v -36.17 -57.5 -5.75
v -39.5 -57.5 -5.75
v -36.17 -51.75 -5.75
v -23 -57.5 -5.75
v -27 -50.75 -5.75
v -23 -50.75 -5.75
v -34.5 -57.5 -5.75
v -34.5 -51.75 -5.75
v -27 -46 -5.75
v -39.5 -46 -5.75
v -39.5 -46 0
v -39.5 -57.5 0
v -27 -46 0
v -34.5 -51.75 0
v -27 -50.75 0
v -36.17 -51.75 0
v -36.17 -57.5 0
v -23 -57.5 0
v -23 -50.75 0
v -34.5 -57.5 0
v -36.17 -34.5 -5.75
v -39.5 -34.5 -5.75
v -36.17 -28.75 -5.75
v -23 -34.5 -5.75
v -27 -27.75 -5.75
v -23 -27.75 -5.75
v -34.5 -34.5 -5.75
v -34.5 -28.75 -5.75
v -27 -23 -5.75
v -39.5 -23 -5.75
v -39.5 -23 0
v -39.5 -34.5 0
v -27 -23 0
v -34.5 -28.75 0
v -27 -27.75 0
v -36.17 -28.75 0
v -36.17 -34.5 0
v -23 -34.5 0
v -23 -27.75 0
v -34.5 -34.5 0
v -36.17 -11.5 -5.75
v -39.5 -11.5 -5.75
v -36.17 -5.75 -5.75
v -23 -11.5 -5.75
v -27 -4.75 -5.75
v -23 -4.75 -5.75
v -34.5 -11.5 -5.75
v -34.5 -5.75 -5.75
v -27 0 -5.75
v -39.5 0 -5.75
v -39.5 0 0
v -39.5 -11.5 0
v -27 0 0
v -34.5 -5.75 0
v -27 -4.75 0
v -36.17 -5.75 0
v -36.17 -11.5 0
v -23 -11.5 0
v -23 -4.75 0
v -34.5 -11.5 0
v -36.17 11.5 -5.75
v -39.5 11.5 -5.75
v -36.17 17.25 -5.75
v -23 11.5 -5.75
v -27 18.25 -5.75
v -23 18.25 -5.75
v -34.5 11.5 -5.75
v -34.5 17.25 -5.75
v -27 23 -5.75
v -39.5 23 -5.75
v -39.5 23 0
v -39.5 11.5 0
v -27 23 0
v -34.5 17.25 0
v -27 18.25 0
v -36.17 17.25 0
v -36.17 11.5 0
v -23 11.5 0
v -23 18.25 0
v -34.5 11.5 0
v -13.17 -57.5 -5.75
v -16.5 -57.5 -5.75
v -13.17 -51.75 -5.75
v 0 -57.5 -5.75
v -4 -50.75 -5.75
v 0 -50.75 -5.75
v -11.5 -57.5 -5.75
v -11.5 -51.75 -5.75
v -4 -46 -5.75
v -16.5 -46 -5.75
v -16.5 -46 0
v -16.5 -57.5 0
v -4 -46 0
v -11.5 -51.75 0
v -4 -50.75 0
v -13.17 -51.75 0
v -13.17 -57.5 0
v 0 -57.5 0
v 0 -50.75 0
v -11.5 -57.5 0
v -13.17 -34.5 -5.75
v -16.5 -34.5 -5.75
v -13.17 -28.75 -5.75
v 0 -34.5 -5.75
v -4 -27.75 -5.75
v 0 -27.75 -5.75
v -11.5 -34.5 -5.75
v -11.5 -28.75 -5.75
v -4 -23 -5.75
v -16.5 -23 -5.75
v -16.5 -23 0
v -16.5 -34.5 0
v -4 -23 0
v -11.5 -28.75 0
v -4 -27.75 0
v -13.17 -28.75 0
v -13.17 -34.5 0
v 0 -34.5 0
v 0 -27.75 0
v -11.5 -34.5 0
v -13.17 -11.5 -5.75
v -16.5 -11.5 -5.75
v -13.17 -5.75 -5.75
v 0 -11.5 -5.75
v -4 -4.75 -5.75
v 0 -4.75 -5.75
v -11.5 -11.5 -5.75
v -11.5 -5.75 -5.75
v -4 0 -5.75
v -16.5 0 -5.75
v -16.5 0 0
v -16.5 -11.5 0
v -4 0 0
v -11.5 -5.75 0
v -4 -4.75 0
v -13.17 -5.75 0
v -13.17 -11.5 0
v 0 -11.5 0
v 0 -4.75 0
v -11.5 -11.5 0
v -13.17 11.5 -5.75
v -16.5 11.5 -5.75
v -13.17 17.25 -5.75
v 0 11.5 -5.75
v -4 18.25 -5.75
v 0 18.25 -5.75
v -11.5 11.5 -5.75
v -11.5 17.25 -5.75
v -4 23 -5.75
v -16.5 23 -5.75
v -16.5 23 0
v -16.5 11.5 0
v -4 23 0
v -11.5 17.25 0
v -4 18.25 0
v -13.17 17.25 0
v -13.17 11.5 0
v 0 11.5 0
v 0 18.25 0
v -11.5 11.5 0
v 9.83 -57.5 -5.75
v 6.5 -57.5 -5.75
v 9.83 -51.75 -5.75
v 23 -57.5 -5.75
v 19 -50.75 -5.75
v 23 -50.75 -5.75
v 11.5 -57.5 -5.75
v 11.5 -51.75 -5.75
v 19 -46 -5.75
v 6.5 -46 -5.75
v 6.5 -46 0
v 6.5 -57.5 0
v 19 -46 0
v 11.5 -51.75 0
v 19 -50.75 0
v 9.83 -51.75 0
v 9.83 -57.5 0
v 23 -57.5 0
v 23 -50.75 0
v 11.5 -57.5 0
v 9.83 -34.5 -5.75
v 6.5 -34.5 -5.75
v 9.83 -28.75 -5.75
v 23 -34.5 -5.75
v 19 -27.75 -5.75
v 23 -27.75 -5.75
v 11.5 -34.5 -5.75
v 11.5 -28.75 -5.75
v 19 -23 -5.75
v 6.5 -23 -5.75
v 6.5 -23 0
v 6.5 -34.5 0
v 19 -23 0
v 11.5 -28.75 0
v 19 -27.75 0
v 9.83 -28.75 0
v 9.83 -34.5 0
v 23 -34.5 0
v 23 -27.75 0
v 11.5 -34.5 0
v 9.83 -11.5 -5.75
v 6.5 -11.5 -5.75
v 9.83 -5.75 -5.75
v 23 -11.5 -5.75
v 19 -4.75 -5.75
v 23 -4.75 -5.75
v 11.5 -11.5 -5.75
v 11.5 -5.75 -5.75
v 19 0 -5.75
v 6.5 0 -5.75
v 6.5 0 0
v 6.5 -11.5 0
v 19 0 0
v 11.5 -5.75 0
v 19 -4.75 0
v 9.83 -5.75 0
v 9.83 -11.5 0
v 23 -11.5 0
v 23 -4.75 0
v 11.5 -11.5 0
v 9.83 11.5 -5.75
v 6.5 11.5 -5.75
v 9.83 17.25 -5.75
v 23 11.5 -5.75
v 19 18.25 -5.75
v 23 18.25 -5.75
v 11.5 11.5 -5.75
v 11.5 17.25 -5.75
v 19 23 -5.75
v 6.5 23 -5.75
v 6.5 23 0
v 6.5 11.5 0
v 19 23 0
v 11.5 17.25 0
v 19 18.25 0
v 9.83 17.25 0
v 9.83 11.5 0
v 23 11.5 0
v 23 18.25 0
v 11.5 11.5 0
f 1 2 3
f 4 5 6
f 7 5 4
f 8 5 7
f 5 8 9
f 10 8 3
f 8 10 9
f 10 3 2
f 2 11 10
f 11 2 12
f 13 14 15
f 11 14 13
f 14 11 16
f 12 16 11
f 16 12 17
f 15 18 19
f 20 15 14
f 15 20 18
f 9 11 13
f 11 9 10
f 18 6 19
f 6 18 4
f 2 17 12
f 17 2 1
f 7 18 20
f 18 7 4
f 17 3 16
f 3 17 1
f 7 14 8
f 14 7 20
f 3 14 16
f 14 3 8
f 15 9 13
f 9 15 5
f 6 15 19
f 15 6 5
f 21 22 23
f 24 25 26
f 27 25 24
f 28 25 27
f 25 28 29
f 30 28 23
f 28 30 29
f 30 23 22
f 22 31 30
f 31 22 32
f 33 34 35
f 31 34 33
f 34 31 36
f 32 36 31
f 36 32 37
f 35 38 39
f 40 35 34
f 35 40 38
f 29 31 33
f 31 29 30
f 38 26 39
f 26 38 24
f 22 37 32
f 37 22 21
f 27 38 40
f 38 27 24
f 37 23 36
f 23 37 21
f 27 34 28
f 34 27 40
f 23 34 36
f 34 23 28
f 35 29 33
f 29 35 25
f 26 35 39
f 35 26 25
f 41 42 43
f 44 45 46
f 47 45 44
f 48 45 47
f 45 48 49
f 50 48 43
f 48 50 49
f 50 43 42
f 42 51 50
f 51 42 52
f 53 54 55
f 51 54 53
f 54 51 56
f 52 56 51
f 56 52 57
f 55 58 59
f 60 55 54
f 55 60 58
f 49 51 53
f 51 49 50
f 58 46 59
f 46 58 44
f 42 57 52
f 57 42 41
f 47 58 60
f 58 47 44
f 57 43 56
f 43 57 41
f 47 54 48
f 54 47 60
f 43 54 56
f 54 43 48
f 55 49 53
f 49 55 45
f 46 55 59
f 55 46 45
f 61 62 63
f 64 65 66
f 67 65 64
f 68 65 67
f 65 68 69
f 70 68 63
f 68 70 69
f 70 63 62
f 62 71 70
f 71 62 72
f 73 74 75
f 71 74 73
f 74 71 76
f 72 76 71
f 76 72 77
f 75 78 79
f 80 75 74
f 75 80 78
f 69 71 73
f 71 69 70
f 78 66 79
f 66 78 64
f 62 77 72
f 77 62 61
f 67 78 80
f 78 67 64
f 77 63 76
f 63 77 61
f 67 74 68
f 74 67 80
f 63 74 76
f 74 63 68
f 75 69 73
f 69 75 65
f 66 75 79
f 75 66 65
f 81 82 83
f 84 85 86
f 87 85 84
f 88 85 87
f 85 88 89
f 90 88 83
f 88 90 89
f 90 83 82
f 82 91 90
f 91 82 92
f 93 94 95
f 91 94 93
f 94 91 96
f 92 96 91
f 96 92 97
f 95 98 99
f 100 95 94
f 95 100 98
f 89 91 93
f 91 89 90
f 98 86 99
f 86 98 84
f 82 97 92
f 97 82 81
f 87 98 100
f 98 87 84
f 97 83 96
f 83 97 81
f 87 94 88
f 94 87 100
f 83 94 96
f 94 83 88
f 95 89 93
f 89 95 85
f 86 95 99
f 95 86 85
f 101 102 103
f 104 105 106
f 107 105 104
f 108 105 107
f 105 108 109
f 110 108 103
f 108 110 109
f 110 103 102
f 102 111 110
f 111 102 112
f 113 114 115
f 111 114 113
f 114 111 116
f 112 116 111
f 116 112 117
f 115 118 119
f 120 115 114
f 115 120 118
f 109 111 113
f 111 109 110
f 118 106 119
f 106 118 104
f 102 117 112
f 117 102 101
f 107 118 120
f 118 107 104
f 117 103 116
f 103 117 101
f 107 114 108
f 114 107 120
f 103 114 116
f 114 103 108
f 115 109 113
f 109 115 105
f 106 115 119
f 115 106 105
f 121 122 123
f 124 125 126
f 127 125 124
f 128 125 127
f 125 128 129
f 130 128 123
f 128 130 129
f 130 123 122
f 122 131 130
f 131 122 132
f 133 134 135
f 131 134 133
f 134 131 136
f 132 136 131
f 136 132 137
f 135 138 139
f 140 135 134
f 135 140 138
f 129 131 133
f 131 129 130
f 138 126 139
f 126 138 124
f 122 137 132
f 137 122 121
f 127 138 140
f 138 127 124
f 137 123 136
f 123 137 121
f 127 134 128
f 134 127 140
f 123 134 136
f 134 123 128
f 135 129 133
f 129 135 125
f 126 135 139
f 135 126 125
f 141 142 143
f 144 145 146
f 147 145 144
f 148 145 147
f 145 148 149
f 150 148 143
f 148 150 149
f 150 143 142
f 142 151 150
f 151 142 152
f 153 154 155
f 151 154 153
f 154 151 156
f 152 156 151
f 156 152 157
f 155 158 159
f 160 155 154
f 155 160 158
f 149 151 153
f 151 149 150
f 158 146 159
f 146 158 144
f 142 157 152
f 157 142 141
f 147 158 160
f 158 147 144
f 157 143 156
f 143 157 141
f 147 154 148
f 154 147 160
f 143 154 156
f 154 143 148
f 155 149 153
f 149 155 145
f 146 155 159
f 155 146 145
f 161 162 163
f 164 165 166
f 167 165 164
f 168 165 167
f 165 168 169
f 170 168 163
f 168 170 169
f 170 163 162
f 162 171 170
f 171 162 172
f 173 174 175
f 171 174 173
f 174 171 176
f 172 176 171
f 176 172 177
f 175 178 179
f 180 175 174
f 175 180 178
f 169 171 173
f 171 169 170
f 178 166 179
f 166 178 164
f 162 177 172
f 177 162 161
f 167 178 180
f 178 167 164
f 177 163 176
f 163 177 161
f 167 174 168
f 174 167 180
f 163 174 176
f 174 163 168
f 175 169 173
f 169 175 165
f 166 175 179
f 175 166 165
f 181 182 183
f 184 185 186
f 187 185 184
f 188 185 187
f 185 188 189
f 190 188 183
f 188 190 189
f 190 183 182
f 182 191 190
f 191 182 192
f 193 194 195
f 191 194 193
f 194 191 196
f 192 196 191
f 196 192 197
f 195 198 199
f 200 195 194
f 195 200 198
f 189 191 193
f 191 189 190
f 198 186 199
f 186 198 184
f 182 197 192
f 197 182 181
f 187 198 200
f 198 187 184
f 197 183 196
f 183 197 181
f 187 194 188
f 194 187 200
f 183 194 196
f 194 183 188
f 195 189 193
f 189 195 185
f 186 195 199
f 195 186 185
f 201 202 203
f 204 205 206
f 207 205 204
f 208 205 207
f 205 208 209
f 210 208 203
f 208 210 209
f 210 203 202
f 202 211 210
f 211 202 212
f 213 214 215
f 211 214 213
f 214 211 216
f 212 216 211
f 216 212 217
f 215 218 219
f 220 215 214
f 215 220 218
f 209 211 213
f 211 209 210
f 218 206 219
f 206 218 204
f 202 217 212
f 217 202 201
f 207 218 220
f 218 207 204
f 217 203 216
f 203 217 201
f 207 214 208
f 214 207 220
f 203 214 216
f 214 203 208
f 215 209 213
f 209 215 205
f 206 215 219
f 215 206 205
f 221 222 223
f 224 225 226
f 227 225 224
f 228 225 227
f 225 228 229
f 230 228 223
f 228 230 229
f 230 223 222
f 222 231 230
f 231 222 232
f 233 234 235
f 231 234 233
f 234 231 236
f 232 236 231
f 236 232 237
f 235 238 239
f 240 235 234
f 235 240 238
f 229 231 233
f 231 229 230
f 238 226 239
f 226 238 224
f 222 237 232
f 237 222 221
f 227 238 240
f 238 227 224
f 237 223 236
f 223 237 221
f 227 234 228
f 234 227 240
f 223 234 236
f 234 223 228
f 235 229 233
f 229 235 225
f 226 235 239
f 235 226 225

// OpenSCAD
$fn = 50; 
 
height = 11.5;
 
module support(){ 
 rotate(-90, [0, 1, 0])
  difference() {  
     difference() {
       translate([-height/2.,-height/2.,0])
         cube( [height/2, height, height + 5] ); 
       translate([-height,-height,height]){
          cube([height*2.,height,1.57+0.1]);}
     }
       translate([-height,1,-1 ]){
          cube([height*2.,5,5]);}
     
  }
}

for (i=[-1:1]) {
  for (j=[-2:1]) {

    translate([i * height *2, j * height * 2 -  height/2,0]) support();
}}
